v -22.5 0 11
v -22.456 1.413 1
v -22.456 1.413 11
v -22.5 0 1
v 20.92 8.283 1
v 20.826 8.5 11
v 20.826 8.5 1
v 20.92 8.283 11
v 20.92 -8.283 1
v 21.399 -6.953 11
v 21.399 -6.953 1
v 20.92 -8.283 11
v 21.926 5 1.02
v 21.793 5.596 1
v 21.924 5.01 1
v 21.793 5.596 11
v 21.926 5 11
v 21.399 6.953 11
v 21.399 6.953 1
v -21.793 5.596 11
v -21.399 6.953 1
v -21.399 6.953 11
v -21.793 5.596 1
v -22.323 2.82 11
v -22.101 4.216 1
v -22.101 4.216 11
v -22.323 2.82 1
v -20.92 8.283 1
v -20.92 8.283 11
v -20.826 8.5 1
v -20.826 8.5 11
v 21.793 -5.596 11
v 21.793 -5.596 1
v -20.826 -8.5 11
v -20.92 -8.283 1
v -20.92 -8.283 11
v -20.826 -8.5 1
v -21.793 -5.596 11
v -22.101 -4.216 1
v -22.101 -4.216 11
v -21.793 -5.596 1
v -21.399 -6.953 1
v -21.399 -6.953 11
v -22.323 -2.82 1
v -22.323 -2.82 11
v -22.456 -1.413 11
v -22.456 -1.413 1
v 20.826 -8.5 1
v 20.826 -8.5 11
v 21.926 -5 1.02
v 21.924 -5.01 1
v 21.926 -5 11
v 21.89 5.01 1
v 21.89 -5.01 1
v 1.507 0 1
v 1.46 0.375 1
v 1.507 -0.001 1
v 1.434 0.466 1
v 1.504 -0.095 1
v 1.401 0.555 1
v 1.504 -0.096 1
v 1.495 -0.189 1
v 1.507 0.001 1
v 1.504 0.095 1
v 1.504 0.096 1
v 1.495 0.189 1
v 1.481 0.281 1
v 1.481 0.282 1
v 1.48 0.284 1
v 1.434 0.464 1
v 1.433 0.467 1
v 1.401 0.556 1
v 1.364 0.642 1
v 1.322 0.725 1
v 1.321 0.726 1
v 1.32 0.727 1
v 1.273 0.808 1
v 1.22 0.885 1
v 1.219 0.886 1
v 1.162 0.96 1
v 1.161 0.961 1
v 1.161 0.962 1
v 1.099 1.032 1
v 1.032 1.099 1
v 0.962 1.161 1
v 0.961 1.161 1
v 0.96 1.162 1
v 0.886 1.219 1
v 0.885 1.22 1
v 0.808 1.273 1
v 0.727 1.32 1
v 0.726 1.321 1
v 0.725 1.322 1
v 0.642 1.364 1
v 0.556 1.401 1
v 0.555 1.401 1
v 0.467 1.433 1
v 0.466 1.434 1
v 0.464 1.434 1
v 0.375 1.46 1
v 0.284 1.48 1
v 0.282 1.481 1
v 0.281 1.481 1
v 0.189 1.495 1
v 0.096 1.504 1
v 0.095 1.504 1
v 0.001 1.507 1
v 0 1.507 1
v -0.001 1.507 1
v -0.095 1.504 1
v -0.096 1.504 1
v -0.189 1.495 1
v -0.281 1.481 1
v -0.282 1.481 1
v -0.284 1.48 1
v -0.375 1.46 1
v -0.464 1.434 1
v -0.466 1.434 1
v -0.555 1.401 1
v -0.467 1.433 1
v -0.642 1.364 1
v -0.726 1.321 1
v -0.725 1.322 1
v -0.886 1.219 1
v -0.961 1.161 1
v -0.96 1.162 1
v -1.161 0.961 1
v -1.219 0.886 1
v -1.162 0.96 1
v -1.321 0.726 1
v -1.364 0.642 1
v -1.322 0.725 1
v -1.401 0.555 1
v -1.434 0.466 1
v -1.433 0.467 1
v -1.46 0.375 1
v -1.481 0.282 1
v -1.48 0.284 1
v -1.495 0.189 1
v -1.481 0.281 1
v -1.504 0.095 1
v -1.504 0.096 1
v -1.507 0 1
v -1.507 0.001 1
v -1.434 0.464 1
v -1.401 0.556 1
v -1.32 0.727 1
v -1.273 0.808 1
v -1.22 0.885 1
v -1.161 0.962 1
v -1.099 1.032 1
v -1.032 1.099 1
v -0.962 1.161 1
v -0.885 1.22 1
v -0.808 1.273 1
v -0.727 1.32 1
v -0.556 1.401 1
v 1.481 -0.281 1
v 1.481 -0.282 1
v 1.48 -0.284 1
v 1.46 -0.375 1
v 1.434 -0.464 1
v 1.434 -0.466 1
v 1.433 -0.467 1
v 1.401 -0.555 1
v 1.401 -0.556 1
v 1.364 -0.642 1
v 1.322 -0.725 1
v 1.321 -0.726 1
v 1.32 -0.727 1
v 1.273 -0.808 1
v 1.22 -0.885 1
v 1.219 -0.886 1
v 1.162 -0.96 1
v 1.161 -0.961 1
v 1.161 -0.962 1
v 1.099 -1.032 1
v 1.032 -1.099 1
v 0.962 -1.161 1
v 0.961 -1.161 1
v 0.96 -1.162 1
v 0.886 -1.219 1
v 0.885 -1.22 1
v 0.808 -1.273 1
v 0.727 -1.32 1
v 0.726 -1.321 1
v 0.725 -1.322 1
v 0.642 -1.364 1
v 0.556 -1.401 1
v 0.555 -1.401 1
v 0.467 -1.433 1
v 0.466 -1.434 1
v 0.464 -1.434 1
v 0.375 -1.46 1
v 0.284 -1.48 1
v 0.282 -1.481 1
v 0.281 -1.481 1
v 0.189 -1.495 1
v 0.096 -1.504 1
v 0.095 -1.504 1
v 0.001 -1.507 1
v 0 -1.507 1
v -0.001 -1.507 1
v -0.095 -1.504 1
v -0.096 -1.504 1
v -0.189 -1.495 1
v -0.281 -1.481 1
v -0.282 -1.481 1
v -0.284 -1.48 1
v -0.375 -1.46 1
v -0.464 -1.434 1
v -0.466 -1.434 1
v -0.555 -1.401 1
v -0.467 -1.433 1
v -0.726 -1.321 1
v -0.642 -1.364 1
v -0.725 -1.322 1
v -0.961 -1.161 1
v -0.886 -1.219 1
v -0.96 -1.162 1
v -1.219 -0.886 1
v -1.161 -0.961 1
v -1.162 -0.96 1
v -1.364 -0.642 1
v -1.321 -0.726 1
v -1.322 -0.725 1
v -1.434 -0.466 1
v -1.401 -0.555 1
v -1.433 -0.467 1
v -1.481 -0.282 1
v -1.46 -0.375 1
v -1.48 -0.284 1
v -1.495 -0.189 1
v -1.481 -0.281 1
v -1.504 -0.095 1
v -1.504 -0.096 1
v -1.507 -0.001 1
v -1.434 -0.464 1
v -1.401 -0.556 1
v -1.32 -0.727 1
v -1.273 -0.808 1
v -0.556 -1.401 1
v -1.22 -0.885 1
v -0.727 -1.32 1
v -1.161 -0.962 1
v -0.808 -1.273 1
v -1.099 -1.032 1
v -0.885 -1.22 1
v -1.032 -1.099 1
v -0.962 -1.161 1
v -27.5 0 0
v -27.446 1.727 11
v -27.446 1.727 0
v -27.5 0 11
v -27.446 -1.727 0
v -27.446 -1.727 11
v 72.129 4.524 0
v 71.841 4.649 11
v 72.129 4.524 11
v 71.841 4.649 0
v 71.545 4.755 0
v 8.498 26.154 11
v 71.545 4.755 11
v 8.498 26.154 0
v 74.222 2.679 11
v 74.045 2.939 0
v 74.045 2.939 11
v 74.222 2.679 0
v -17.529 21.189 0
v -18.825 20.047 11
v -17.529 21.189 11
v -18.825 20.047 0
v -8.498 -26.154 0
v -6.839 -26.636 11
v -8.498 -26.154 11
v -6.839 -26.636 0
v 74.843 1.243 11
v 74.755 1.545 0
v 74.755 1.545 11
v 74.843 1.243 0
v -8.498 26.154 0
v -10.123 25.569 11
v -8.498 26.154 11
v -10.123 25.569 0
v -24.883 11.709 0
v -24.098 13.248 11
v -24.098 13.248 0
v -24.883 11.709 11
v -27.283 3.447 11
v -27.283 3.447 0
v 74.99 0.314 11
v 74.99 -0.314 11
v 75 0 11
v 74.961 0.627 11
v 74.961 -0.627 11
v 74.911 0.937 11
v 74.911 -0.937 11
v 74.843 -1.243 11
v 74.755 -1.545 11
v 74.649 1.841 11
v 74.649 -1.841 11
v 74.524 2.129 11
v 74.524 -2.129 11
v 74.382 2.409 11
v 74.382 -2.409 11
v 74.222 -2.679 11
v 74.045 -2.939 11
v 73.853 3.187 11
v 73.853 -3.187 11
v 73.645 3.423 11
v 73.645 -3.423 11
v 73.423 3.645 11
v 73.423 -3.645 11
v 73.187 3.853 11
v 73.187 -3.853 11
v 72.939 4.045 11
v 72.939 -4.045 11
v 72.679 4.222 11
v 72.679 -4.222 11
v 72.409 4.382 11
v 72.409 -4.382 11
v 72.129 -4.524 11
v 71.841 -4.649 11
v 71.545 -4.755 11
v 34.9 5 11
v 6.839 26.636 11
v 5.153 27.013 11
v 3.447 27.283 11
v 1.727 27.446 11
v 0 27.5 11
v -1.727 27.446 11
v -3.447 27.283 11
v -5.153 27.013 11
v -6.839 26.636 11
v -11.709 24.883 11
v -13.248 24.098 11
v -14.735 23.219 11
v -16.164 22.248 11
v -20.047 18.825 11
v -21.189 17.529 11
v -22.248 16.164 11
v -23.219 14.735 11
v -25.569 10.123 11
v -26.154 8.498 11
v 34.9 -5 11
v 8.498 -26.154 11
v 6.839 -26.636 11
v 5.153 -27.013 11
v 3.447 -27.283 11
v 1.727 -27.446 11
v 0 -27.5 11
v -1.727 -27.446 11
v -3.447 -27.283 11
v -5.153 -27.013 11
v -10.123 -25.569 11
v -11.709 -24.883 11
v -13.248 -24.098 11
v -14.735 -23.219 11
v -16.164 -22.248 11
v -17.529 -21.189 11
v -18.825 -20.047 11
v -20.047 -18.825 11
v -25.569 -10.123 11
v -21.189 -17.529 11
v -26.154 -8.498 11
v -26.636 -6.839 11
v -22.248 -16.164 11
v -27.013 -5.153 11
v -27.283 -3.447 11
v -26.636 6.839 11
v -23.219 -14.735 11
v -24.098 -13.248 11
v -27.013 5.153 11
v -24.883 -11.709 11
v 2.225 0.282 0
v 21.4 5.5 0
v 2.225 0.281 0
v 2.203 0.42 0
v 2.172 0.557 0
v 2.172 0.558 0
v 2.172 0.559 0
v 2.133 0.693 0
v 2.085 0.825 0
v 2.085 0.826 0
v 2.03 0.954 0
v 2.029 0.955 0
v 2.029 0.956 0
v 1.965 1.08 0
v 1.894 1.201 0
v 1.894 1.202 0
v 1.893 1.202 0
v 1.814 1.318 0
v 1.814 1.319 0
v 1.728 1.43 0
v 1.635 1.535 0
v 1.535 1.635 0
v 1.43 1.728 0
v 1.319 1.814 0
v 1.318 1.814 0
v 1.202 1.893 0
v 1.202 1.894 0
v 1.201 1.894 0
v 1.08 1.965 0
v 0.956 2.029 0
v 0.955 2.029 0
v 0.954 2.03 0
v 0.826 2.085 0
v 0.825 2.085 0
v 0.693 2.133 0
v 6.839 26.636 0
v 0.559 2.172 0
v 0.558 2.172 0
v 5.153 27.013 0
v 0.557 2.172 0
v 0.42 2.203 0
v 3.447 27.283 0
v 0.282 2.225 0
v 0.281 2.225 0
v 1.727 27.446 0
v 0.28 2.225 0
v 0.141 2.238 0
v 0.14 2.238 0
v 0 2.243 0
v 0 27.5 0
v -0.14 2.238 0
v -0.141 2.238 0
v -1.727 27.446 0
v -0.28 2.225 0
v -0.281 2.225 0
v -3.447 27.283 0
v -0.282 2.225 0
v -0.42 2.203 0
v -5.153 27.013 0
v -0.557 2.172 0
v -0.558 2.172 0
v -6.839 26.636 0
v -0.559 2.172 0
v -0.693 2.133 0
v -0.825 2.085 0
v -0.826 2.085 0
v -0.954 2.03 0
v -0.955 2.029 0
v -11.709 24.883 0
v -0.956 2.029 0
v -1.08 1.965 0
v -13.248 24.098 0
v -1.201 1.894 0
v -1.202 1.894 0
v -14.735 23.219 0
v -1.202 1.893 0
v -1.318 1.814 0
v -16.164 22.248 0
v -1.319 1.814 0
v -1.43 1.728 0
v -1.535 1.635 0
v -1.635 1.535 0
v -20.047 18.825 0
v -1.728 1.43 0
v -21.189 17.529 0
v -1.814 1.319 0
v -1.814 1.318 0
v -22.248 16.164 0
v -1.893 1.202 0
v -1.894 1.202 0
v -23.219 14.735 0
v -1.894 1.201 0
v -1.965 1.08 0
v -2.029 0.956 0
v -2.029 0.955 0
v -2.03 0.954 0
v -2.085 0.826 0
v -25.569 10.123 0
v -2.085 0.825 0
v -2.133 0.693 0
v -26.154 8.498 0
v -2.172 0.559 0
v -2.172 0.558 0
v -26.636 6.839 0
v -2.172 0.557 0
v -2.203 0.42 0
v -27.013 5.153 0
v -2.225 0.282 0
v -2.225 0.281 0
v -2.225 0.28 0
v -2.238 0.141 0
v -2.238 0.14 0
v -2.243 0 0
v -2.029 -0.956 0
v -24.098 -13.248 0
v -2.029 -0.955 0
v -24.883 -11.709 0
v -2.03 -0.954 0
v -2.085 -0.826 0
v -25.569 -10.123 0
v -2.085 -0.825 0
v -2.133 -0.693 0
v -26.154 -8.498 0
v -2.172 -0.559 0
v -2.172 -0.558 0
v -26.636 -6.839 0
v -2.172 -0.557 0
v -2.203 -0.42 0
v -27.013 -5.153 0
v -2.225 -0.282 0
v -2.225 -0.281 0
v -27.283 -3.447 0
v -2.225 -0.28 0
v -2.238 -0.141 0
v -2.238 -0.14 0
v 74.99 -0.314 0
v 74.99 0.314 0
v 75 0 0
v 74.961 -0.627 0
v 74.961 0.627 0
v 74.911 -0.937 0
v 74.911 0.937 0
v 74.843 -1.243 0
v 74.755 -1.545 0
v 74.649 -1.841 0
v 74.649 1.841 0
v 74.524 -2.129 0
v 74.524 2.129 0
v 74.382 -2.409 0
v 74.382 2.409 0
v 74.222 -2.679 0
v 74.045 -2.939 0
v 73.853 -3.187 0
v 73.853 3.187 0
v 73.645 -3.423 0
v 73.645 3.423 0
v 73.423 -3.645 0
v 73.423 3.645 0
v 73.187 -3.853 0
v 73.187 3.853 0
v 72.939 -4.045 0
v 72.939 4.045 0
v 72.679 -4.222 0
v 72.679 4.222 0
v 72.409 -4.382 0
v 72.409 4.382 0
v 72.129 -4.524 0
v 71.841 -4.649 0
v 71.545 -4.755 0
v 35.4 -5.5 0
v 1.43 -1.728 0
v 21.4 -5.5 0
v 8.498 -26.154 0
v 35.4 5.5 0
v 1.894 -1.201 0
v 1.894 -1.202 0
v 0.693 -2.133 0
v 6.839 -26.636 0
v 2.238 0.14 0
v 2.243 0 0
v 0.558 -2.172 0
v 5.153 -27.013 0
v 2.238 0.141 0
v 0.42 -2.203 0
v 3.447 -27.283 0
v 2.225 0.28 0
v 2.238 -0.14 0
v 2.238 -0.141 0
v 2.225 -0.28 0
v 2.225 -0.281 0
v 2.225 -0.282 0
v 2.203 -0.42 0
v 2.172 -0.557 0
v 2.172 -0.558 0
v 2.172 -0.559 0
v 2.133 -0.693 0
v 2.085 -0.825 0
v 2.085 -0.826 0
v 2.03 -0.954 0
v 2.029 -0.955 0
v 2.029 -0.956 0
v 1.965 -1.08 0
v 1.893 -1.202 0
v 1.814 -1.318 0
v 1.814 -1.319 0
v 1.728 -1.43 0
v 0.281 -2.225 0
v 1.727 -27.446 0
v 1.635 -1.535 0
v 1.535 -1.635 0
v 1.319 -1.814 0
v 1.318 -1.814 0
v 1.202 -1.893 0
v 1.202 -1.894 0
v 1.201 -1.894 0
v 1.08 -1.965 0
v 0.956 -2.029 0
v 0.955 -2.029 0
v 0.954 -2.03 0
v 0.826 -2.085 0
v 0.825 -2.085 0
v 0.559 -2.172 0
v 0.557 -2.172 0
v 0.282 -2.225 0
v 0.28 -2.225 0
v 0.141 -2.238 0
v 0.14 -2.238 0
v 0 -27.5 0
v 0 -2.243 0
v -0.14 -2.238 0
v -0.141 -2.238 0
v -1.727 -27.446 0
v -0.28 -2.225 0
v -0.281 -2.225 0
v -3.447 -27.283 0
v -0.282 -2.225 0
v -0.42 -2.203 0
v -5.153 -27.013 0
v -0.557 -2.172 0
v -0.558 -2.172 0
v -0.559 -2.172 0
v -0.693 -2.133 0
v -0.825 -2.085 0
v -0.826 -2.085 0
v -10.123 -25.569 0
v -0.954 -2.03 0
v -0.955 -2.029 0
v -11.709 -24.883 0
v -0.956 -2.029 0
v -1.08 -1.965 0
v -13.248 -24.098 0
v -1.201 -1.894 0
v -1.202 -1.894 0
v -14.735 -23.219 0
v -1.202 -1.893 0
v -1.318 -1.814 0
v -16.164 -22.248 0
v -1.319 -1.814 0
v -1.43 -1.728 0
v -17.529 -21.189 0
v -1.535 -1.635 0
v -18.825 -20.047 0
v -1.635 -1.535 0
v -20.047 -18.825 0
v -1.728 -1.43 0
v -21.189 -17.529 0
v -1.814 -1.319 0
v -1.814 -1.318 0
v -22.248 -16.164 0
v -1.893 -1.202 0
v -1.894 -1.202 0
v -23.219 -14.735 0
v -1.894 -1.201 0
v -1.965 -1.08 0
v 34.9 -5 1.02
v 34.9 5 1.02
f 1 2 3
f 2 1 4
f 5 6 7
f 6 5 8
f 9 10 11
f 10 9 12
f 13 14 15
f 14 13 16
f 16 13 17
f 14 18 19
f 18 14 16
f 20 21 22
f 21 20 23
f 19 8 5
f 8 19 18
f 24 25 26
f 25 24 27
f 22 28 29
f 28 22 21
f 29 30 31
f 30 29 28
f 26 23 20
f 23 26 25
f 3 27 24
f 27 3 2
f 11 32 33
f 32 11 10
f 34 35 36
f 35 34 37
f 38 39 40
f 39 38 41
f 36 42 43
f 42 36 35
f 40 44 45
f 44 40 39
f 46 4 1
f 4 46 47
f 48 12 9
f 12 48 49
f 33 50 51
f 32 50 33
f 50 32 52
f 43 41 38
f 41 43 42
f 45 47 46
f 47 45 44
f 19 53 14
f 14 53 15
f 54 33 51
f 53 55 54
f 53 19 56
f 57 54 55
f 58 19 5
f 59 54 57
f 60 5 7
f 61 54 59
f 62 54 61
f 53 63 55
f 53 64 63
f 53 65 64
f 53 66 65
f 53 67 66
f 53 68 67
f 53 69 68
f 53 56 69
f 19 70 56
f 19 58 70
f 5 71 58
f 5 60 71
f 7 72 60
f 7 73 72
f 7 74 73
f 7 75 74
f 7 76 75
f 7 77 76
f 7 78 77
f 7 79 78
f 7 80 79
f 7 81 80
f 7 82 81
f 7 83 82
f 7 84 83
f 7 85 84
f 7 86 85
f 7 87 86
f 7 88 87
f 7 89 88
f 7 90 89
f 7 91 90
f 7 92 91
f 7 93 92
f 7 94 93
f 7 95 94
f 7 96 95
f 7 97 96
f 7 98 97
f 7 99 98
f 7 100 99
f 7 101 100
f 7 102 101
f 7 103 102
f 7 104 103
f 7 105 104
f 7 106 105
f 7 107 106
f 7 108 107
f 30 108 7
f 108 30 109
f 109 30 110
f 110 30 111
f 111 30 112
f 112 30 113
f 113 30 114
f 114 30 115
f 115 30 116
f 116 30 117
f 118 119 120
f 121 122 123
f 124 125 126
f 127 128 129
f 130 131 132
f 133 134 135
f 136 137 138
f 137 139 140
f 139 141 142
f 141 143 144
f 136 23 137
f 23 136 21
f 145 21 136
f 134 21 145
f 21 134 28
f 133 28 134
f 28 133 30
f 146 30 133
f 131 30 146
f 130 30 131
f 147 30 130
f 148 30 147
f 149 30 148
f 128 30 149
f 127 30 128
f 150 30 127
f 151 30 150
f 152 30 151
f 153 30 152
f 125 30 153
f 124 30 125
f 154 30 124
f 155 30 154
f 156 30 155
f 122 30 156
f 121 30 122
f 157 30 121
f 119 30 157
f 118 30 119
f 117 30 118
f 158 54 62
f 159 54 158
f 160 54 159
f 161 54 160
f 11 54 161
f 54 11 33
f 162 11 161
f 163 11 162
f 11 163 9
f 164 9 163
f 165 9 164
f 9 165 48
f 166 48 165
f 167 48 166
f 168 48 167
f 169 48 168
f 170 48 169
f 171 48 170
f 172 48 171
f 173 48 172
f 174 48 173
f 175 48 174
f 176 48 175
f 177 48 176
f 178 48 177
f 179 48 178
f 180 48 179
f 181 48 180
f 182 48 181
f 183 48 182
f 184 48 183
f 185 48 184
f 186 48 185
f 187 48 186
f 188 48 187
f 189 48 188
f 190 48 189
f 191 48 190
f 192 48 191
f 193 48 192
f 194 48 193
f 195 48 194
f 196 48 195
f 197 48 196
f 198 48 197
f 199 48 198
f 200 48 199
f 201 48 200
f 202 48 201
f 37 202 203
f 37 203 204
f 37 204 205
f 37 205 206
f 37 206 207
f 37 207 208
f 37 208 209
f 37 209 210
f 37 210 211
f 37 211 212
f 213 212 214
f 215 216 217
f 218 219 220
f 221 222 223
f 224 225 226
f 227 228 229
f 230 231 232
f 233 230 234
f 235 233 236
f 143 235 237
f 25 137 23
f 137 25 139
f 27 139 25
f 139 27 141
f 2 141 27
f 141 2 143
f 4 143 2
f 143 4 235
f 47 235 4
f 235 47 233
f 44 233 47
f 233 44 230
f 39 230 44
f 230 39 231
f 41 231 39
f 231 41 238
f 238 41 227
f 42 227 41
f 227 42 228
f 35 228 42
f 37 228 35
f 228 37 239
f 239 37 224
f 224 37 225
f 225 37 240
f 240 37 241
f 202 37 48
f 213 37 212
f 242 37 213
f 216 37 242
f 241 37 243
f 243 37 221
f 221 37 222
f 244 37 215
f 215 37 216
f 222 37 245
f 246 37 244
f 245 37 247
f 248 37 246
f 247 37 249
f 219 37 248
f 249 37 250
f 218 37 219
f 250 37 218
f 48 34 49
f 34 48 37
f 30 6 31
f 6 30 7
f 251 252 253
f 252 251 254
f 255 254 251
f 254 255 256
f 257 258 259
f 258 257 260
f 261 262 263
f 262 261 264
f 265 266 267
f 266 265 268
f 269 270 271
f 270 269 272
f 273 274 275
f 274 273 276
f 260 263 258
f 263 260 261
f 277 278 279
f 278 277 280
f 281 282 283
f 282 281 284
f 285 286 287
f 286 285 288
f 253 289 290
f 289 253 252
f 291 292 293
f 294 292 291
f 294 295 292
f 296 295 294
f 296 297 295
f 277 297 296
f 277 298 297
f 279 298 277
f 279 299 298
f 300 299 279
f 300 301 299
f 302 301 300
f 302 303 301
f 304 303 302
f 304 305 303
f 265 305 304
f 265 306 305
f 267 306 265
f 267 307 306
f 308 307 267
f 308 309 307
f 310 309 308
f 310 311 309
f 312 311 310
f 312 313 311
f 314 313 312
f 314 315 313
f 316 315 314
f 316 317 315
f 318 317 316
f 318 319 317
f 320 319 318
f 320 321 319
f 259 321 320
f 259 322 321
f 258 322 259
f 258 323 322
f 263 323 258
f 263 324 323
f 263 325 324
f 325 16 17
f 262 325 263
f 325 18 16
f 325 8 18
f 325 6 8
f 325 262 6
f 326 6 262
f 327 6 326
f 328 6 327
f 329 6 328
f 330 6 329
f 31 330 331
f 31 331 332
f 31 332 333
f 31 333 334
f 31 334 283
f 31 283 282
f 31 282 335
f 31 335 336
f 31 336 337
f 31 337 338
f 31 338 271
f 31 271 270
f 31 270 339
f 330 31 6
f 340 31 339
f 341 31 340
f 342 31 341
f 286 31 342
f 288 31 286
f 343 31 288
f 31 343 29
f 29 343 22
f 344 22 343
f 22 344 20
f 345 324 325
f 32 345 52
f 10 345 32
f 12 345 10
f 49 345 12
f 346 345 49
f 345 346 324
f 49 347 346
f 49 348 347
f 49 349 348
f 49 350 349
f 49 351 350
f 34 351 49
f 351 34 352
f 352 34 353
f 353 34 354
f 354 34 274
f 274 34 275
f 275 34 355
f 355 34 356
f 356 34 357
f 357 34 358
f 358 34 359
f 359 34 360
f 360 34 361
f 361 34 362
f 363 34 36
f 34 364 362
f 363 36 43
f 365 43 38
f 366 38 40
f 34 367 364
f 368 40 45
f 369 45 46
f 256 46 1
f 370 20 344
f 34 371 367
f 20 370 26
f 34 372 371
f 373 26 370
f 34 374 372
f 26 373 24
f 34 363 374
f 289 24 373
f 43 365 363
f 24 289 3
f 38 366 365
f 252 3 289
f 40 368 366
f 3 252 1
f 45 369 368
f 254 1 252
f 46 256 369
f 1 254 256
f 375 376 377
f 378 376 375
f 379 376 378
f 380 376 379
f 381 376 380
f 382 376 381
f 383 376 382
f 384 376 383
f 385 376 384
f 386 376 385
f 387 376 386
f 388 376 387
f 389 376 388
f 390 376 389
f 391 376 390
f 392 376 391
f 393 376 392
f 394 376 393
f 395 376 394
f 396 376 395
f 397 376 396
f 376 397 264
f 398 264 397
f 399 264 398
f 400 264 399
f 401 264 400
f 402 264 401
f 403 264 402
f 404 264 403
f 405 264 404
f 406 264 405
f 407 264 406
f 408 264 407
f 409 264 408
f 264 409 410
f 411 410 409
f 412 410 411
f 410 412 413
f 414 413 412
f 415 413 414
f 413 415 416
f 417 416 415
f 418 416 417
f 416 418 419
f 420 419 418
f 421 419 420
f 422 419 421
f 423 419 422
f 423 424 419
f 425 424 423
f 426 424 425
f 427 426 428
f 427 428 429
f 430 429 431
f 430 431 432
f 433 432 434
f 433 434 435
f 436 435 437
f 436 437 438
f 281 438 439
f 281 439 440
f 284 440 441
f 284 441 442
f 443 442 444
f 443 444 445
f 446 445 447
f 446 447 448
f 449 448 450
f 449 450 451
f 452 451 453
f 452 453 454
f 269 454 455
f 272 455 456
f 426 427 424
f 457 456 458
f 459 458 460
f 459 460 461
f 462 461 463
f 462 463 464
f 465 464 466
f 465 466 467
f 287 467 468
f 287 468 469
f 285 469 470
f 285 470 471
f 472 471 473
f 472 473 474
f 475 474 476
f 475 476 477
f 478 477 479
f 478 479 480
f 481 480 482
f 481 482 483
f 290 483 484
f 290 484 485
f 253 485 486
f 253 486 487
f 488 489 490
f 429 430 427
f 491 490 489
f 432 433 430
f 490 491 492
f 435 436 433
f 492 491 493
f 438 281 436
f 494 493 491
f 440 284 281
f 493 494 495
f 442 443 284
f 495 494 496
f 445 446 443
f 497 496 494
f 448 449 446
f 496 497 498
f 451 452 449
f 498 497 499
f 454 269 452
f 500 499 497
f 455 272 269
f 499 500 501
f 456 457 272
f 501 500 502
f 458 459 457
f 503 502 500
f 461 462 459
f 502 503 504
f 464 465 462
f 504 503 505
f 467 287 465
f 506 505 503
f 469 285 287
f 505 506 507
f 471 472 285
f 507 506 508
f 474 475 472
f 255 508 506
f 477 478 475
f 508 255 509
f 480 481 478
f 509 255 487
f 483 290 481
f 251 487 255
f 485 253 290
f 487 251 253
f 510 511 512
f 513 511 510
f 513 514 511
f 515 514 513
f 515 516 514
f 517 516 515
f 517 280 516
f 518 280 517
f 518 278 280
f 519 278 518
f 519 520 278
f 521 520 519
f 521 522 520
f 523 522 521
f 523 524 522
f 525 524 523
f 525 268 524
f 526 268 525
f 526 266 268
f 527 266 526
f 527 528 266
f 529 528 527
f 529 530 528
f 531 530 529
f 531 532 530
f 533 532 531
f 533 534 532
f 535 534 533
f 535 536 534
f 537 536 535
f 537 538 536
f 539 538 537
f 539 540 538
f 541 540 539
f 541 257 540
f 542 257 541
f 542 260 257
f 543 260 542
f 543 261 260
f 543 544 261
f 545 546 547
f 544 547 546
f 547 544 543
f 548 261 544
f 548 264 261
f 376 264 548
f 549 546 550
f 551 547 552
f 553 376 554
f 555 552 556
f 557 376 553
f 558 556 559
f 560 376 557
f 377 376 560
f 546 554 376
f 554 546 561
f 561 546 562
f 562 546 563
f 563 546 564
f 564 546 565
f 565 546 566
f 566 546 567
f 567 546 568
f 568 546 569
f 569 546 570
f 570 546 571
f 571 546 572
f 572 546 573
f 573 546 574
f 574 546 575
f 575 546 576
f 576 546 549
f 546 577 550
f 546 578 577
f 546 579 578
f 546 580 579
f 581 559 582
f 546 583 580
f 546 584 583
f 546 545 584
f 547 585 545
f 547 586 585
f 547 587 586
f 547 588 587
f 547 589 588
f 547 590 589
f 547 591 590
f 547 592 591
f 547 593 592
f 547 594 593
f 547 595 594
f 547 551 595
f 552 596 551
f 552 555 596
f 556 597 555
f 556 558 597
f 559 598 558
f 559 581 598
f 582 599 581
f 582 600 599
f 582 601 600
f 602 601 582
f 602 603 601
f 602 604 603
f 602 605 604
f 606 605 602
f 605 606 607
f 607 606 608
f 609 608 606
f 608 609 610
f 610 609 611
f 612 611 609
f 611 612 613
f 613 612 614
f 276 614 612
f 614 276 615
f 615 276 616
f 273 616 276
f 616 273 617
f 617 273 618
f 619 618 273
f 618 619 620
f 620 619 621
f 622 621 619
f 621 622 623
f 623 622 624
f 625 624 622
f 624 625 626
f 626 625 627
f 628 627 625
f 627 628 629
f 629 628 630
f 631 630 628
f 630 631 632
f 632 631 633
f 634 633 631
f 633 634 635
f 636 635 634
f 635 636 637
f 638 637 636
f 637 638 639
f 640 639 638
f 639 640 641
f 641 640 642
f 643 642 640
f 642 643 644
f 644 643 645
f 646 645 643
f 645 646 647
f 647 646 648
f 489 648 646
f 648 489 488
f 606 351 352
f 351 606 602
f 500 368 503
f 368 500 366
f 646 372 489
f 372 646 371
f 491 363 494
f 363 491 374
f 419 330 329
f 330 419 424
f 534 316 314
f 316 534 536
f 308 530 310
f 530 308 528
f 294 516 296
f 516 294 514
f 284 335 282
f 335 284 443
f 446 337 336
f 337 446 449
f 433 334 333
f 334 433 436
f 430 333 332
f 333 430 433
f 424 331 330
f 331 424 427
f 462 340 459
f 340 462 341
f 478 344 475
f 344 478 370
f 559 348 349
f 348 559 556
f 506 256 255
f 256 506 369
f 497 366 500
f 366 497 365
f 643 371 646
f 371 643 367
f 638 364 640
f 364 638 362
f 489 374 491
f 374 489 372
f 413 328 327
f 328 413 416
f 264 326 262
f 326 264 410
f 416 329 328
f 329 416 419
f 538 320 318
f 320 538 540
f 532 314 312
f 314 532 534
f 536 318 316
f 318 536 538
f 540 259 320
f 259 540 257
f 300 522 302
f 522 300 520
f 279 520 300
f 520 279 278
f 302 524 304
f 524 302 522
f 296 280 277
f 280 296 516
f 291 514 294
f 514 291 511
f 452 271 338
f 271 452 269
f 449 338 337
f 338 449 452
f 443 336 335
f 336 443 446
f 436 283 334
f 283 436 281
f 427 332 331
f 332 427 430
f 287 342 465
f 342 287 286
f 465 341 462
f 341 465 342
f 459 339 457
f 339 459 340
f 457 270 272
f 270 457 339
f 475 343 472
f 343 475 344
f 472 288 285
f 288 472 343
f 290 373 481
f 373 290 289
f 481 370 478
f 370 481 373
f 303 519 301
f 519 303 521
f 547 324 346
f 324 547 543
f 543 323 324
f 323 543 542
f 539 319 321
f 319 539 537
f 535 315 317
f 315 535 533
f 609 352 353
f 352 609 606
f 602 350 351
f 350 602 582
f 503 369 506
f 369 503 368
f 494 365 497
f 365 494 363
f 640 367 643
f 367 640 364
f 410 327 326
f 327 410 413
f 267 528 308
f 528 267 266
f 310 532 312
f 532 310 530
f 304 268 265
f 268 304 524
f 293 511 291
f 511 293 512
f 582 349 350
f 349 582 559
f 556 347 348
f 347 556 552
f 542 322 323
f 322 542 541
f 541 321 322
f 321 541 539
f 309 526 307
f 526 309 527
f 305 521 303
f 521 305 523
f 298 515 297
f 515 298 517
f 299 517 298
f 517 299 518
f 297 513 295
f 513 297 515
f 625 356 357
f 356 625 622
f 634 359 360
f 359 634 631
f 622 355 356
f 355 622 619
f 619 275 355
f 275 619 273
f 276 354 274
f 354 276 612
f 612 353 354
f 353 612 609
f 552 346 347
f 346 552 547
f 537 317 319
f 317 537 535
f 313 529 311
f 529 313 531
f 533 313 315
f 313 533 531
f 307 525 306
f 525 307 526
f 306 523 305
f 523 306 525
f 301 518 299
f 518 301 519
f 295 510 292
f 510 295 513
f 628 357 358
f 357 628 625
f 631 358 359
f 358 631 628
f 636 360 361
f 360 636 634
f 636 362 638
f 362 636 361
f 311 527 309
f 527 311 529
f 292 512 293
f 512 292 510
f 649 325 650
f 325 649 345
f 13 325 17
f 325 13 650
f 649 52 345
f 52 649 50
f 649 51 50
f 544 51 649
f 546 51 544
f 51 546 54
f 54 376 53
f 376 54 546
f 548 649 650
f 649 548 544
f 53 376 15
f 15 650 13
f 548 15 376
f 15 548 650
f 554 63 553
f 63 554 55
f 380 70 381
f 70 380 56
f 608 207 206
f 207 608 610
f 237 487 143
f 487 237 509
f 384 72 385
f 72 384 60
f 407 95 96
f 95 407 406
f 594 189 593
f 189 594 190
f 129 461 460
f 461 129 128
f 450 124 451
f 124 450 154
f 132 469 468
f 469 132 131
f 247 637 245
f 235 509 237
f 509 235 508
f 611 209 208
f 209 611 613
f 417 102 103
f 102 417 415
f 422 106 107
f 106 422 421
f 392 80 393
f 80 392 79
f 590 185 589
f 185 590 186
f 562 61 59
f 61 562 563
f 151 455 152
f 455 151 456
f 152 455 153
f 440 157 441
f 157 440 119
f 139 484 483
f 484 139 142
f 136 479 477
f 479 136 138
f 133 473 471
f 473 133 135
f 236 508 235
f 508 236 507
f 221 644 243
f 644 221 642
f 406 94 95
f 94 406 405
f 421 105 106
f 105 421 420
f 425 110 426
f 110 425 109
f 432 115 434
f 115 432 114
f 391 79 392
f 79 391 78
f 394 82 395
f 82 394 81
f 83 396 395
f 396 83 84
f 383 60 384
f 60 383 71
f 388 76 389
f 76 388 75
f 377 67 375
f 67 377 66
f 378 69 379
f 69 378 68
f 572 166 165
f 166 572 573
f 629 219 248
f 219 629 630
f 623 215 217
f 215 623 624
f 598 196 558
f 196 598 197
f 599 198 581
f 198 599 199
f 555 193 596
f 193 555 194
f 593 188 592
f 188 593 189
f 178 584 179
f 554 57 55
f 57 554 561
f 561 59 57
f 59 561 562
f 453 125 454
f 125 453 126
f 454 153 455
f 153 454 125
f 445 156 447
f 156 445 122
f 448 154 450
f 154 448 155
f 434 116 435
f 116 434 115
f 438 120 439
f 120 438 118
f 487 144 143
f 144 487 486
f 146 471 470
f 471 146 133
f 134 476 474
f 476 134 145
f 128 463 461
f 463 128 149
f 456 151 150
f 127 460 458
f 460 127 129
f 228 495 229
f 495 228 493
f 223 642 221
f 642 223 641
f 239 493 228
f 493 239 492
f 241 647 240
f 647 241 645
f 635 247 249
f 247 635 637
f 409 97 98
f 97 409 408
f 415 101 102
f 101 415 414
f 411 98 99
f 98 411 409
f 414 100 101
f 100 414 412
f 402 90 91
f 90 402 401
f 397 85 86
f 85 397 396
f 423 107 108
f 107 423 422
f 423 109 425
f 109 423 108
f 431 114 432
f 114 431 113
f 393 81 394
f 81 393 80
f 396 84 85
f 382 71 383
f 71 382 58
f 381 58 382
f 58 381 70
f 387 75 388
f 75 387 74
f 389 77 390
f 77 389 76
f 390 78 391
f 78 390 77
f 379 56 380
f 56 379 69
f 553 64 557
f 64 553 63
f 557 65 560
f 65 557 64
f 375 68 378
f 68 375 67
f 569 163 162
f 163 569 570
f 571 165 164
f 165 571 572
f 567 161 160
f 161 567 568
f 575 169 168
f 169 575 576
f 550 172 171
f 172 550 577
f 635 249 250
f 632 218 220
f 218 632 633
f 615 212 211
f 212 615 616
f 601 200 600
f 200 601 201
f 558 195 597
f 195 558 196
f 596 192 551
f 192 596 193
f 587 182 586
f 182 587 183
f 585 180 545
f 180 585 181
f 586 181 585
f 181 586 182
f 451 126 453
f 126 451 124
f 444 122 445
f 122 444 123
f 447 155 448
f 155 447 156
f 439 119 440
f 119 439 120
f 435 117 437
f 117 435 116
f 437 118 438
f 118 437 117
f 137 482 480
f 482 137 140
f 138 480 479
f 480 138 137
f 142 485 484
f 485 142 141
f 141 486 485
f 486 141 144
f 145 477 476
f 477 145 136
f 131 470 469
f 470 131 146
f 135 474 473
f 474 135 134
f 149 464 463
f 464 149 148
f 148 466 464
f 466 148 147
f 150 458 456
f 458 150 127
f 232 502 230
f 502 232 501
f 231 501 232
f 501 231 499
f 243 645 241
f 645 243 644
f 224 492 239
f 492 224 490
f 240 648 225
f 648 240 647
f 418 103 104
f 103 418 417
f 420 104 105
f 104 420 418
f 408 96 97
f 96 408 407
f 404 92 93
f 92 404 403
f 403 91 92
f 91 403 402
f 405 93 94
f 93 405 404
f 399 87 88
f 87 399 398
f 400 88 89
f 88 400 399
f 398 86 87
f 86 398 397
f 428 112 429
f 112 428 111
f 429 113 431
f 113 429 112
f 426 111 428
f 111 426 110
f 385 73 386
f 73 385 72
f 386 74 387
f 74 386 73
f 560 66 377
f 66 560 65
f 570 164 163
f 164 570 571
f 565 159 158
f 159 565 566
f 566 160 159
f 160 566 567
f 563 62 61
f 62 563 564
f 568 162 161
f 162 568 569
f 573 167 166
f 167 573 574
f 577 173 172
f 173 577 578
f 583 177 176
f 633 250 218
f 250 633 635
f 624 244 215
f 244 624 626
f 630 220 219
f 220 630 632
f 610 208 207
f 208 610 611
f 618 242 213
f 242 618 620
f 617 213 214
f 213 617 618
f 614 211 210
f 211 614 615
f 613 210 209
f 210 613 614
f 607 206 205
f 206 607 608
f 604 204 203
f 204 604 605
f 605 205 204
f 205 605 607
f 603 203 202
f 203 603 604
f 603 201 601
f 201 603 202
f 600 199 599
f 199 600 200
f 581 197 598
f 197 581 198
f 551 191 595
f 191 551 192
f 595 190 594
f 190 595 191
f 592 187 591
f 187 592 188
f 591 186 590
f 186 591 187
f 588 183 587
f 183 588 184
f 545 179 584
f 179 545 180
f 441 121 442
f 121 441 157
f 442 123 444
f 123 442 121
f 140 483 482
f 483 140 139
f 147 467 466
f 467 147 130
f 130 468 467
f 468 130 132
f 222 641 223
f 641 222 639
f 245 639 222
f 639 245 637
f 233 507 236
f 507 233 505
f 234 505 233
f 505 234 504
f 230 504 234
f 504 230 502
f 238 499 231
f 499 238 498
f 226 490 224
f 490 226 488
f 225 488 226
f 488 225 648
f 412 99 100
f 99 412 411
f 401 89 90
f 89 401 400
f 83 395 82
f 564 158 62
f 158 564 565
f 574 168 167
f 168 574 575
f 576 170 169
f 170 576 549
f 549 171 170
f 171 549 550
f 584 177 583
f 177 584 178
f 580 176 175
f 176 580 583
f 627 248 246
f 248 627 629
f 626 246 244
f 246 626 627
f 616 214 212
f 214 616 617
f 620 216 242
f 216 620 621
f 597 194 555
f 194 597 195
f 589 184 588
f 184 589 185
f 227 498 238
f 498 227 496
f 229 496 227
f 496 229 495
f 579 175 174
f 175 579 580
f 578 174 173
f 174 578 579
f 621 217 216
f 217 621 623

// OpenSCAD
$fn=100;
extra=0.02;

dKnob = 45;
hKnob = 11;
wKnobHandle = 17;
leverWallThickness = 5;

dLever = 10;
moveLever = 70;

watchWindowX = 13;
watchWindowY = 10;

moveWatchWinX = ((dKnob/2) -1 + 0.4);


module knobLever()
{
  difference()
  {
    hull()
    {
      cylinder(r=(dKnob/2+leverWallThickness), h=hKnob);

      translate([moveLever,0,0])
      cylinder(r=(dLever/2), h=hKnob);
    }

    intersection()
    {
      cylinder(r=(dKnob/2), h=hKnob+extra);

      translate([-dKnob/2,-wKnobHandle/2,1])
      cube([dKnob,wKnobHandle,hKnob+extra]);
    }

    translate([moveWatchWinX,-watchWindowY/2,1])
    cube([watchWindowX,watchWindowY,hKnob]);

    hull()
    {
      translate([moveWatchWinX,-watchWindowY/2,1])
      cube([watchWindowX,watchWindowY,extra]);
      translate([moveWatchWinX-1/2,-(watchWindowY+1)/2,-extra])
      cube([watchWindowX+1,watchWindowY+1,extra]);
    }

    translate([0,0,-extra/2])
    cylinder(r2=3/2, r1=4.5/2, h=1+extra);

  }
}


knobLever();
